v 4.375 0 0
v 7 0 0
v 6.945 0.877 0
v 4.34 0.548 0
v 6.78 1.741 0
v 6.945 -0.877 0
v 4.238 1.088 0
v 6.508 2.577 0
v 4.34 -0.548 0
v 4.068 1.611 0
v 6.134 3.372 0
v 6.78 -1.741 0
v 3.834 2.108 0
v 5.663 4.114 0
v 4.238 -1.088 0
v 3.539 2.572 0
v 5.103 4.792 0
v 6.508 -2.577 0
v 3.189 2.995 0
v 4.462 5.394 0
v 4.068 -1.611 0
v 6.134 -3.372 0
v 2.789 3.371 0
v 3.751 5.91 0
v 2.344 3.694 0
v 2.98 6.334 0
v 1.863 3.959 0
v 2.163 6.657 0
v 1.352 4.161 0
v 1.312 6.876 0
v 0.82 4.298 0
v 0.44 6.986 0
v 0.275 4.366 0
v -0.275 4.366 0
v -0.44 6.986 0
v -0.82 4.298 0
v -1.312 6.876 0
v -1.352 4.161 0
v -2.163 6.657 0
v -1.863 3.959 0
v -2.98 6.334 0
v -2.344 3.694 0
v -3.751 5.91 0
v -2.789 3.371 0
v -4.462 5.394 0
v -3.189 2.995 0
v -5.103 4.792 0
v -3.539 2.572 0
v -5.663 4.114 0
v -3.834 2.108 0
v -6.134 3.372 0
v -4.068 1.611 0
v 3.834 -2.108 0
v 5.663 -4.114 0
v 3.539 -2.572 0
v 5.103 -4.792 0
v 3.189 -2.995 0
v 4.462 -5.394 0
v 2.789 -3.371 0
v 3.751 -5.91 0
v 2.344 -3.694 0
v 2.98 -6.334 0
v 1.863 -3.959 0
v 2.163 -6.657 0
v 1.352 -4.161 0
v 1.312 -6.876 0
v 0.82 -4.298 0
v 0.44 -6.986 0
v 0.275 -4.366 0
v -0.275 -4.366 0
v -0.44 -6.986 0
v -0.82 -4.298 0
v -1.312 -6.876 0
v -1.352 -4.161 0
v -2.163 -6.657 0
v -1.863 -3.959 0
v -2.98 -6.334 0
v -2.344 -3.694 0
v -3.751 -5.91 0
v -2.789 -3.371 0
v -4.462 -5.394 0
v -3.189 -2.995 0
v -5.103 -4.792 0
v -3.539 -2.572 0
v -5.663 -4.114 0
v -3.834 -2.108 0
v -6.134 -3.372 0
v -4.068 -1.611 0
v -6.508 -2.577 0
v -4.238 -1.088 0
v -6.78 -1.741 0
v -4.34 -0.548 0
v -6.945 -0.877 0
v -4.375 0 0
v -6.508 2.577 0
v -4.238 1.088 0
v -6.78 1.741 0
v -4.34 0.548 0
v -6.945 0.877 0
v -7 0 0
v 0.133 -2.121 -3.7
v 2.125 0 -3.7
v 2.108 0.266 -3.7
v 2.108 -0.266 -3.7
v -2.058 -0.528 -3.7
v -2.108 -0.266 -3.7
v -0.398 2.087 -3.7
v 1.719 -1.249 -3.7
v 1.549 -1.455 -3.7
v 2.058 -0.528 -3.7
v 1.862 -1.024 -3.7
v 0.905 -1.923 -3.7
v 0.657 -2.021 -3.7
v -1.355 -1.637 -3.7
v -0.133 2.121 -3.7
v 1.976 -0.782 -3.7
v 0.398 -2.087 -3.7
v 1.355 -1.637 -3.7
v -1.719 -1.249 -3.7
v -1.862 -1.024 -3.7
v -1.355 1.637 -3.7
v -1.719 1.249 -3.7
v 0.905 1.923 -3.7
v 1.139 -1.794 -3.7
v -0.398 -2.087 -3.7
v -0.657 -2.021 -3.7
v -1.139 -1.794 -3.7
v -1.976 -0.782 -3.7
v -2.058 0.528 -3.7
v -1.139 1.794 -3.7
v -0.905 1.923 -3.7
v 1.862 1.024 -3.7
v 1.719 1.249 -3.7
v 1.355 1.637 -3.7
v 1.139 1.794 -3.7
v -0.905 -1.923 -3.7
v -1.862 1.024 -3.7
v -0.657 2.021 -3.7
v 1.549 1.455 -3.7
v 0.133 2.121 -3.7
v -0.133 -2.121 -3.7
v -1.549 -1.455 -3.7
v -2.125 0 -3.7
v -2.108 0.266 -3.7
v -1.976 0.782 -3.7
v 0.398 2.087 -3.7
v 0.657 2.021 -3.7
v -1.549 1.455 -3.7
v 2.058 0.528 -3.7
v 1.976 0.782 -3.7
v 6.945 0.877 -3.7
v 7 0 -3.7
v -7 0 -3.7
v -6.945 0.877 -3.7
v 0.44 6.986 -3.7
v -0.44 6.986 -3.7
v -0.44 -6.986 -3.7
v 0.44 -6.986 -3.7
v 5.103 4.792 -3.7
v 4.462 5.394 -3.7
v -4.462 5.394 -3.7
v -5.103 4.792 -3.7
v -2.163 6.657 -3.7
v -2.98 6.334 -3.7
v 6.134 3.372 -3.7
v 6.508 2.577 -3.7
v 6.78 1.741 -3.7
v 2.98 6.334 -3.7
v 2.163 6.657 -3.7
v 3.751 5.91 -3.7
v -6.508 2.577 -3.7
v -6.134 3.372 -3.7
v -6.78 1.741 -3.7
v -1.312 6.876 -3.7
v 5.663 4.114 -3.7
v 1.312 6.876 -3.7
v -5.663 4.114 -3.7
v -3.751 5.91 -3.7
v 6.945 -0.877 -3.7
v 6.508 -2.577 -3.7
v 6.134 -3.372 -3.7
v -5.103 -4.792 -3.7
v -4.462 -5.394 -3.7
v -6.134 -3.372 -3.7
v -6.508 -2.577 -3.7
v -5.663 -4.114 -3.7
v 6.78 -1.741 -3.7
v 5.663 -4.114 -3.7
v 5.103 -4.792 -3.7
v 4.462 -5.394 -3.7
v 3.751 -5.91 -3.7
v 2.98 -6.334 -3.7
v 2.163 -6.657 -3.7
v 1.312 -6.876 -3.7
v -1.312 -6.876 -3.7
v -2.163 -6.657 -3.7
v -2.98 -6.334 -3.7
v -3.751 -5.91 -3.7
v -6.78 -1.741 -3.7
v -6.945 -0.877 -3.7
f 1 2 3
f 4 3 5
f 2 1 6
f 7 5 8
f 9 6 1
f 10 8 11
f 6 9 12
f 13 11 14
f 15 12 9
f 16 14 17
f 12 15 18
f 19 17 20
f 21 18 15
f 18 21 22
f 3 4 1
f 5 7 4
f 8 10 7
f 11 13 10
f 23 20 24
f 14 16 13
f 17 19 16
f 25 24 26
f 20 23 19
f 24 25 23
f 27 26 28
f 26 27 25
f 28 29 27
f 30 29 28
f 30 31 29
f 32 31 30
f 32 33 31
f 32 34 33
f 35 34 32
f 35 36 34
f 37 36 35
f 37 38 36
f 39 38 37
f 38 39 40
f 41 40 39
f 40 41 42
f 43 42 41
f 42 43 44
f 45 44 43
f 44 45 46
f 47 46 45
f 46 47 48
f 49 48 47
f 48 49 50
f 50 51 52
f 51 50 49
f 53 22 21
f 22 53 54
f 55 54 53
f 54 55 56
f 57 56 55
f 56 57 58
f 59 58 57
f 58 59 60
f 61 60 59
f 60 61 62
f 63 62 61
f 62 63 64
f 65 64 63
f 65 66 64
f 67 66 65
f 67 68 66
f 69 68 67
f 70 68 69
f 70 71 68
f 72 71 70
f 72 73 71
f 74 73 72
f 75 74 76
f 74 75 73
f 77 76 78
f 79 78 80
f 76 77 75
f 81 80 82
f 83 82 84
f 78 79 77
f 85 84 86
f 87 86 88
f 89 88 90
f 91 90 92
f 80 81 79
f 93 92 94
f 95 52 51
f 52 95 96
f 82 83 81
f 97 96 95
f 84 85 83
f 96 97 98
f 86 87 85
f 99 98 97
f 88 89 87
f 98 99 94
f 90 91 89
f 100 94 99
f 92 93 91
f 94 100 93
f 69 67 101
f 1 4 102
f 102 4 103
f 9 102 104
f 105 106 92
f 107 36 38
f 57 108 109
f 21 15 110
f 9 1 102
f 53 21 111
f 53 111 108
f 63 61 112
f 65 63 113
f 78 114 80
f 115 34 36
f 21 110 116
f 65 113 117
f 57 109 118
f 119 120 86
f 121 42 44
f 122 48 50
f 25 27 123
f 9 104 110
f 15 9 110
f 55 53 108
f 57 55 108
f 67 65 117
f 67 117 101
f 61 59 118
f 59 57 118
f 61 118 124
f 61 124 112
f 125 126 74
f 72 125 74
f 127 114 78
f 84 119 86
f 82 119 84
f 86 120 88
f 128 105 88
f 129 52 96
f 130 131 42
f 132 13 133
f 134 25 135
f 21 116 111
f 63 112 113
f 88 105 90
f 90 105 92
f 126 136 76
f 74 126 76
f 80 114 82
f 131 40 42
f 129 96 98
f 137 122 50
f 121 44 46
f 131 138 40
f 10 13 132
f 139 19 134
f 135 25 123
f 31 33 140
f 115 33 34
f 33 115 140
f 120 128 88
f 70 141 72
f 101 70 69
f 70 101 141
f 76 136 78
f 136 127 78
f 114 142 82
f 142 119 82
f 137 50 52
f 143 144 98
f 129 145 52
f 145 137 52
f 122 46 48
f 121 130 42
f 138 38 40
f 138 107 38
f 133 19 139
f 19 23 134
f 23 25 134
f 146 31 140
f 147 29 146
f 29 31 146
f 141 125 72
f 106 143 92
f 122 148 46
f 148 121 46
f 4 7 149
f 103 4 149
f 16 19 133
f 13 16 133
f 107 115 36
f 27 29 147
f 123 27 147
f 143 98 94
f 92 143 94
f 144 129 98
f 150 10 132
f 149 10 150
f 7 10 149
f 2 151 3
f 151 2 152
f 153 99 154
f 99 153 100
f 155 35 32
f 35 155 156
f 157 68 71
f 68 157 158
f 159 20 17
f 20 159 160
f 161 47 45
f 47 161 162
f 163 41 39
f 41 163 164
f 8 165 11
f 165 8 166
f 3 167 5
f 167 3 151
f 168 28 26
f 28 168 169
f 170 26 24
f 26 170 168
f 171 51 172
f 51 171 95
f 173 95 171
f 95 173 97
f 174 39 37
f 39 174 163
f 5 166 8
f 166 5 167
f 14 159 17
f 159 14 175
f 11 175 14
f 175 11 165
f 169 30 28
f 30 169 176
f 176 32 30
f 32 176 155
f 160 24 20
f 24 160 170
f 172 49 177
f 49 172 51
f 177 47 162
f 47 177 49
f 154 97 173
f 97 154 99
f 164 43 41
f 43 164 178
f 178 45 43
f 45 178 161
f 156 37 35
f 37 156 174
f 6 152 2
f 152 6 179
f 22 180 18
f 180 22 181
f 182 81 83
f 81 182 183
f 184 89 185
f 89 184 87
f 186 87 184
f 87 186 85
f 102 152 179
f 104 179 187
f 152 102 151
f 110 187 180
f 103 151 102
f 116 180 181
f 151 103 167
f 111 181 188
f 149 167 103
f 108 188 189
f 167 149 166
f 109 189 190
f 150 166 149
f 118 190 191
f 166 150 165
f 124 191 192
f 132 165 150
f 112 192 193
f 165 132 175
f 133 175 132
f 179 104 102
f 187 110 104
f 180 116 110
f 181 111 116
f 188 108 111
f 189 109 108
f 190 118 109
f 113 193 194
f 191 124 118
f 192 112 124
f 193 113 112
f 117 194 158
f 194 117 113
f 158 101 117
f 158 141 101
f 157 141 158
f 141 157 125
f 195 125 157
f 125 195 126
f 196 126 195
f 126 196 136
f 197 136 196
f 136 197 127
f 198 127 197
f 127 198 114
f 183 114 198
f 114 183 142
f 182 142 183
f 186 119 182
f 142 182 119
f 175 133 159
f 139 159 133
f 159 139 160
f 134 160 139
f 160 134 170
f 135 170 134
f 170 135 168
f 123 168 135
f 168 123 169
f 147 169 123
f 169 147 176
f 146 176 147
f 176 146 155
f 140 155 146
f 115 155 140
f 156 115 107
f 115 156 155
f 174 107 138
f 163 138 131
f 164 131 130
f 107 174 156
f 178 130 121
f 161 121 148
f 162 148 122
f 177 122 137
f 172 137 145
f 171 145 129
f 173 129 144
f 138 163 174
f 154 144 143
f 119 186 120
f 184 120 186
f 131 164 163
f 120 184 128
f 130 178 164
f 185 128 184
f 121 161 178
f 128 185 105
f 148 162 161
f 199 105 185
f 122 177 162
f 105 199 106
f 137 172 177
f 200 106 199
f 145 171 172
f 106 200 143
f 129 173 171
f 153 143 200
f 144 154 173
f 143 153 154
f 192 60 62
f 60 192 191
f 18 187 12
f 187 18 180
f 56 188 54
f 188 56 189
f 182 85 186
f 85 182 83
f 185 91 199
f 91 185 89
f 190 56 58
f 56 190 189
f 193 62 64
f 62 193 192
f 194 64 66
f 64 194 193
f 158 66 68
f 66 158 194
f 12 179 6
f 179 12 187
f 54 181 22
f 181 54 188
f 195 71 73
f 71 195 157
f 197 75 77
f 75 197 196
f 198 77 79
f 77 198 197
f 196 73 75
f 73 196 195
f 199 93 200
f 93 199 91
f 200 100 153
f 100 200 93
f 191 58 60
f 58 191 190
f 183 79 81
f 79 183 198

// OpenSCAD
$fn = 50;


difference() {
	union() {
		translate(v = [0, 0, -3.7000000000]) {
			cylinder(h = 3.7000000000, r = 7.0000000000);
		}
	}
	union() {
		translate(v = [0, 0, 0]) {
			rotate(a = [0, 0, 0]) {
				difference() {
					union() {
						translate(v = [0, 0, -6.7000000000]) {
							cylinder(h = 6.7000000000, r = 2.0000000000);
						}
						translate(v = [0, 0, -3.7000000000]) {
							cylinder(h = 3.7000000000, r1 = 2.1250000000, r2 = 4.3750000000);
						}
						translate(v = [0, 0, -6.7000000000]) {
							cylinder(h = 6.7000000000, r = 2.1250000000);
						}
						translate(v = [0, 0, -6.7000000000]) {
							cylinder(h = 6.7000000000, r = 2.0000000000);
						}
					}
					union();
				}
			}
		}
	}
}
